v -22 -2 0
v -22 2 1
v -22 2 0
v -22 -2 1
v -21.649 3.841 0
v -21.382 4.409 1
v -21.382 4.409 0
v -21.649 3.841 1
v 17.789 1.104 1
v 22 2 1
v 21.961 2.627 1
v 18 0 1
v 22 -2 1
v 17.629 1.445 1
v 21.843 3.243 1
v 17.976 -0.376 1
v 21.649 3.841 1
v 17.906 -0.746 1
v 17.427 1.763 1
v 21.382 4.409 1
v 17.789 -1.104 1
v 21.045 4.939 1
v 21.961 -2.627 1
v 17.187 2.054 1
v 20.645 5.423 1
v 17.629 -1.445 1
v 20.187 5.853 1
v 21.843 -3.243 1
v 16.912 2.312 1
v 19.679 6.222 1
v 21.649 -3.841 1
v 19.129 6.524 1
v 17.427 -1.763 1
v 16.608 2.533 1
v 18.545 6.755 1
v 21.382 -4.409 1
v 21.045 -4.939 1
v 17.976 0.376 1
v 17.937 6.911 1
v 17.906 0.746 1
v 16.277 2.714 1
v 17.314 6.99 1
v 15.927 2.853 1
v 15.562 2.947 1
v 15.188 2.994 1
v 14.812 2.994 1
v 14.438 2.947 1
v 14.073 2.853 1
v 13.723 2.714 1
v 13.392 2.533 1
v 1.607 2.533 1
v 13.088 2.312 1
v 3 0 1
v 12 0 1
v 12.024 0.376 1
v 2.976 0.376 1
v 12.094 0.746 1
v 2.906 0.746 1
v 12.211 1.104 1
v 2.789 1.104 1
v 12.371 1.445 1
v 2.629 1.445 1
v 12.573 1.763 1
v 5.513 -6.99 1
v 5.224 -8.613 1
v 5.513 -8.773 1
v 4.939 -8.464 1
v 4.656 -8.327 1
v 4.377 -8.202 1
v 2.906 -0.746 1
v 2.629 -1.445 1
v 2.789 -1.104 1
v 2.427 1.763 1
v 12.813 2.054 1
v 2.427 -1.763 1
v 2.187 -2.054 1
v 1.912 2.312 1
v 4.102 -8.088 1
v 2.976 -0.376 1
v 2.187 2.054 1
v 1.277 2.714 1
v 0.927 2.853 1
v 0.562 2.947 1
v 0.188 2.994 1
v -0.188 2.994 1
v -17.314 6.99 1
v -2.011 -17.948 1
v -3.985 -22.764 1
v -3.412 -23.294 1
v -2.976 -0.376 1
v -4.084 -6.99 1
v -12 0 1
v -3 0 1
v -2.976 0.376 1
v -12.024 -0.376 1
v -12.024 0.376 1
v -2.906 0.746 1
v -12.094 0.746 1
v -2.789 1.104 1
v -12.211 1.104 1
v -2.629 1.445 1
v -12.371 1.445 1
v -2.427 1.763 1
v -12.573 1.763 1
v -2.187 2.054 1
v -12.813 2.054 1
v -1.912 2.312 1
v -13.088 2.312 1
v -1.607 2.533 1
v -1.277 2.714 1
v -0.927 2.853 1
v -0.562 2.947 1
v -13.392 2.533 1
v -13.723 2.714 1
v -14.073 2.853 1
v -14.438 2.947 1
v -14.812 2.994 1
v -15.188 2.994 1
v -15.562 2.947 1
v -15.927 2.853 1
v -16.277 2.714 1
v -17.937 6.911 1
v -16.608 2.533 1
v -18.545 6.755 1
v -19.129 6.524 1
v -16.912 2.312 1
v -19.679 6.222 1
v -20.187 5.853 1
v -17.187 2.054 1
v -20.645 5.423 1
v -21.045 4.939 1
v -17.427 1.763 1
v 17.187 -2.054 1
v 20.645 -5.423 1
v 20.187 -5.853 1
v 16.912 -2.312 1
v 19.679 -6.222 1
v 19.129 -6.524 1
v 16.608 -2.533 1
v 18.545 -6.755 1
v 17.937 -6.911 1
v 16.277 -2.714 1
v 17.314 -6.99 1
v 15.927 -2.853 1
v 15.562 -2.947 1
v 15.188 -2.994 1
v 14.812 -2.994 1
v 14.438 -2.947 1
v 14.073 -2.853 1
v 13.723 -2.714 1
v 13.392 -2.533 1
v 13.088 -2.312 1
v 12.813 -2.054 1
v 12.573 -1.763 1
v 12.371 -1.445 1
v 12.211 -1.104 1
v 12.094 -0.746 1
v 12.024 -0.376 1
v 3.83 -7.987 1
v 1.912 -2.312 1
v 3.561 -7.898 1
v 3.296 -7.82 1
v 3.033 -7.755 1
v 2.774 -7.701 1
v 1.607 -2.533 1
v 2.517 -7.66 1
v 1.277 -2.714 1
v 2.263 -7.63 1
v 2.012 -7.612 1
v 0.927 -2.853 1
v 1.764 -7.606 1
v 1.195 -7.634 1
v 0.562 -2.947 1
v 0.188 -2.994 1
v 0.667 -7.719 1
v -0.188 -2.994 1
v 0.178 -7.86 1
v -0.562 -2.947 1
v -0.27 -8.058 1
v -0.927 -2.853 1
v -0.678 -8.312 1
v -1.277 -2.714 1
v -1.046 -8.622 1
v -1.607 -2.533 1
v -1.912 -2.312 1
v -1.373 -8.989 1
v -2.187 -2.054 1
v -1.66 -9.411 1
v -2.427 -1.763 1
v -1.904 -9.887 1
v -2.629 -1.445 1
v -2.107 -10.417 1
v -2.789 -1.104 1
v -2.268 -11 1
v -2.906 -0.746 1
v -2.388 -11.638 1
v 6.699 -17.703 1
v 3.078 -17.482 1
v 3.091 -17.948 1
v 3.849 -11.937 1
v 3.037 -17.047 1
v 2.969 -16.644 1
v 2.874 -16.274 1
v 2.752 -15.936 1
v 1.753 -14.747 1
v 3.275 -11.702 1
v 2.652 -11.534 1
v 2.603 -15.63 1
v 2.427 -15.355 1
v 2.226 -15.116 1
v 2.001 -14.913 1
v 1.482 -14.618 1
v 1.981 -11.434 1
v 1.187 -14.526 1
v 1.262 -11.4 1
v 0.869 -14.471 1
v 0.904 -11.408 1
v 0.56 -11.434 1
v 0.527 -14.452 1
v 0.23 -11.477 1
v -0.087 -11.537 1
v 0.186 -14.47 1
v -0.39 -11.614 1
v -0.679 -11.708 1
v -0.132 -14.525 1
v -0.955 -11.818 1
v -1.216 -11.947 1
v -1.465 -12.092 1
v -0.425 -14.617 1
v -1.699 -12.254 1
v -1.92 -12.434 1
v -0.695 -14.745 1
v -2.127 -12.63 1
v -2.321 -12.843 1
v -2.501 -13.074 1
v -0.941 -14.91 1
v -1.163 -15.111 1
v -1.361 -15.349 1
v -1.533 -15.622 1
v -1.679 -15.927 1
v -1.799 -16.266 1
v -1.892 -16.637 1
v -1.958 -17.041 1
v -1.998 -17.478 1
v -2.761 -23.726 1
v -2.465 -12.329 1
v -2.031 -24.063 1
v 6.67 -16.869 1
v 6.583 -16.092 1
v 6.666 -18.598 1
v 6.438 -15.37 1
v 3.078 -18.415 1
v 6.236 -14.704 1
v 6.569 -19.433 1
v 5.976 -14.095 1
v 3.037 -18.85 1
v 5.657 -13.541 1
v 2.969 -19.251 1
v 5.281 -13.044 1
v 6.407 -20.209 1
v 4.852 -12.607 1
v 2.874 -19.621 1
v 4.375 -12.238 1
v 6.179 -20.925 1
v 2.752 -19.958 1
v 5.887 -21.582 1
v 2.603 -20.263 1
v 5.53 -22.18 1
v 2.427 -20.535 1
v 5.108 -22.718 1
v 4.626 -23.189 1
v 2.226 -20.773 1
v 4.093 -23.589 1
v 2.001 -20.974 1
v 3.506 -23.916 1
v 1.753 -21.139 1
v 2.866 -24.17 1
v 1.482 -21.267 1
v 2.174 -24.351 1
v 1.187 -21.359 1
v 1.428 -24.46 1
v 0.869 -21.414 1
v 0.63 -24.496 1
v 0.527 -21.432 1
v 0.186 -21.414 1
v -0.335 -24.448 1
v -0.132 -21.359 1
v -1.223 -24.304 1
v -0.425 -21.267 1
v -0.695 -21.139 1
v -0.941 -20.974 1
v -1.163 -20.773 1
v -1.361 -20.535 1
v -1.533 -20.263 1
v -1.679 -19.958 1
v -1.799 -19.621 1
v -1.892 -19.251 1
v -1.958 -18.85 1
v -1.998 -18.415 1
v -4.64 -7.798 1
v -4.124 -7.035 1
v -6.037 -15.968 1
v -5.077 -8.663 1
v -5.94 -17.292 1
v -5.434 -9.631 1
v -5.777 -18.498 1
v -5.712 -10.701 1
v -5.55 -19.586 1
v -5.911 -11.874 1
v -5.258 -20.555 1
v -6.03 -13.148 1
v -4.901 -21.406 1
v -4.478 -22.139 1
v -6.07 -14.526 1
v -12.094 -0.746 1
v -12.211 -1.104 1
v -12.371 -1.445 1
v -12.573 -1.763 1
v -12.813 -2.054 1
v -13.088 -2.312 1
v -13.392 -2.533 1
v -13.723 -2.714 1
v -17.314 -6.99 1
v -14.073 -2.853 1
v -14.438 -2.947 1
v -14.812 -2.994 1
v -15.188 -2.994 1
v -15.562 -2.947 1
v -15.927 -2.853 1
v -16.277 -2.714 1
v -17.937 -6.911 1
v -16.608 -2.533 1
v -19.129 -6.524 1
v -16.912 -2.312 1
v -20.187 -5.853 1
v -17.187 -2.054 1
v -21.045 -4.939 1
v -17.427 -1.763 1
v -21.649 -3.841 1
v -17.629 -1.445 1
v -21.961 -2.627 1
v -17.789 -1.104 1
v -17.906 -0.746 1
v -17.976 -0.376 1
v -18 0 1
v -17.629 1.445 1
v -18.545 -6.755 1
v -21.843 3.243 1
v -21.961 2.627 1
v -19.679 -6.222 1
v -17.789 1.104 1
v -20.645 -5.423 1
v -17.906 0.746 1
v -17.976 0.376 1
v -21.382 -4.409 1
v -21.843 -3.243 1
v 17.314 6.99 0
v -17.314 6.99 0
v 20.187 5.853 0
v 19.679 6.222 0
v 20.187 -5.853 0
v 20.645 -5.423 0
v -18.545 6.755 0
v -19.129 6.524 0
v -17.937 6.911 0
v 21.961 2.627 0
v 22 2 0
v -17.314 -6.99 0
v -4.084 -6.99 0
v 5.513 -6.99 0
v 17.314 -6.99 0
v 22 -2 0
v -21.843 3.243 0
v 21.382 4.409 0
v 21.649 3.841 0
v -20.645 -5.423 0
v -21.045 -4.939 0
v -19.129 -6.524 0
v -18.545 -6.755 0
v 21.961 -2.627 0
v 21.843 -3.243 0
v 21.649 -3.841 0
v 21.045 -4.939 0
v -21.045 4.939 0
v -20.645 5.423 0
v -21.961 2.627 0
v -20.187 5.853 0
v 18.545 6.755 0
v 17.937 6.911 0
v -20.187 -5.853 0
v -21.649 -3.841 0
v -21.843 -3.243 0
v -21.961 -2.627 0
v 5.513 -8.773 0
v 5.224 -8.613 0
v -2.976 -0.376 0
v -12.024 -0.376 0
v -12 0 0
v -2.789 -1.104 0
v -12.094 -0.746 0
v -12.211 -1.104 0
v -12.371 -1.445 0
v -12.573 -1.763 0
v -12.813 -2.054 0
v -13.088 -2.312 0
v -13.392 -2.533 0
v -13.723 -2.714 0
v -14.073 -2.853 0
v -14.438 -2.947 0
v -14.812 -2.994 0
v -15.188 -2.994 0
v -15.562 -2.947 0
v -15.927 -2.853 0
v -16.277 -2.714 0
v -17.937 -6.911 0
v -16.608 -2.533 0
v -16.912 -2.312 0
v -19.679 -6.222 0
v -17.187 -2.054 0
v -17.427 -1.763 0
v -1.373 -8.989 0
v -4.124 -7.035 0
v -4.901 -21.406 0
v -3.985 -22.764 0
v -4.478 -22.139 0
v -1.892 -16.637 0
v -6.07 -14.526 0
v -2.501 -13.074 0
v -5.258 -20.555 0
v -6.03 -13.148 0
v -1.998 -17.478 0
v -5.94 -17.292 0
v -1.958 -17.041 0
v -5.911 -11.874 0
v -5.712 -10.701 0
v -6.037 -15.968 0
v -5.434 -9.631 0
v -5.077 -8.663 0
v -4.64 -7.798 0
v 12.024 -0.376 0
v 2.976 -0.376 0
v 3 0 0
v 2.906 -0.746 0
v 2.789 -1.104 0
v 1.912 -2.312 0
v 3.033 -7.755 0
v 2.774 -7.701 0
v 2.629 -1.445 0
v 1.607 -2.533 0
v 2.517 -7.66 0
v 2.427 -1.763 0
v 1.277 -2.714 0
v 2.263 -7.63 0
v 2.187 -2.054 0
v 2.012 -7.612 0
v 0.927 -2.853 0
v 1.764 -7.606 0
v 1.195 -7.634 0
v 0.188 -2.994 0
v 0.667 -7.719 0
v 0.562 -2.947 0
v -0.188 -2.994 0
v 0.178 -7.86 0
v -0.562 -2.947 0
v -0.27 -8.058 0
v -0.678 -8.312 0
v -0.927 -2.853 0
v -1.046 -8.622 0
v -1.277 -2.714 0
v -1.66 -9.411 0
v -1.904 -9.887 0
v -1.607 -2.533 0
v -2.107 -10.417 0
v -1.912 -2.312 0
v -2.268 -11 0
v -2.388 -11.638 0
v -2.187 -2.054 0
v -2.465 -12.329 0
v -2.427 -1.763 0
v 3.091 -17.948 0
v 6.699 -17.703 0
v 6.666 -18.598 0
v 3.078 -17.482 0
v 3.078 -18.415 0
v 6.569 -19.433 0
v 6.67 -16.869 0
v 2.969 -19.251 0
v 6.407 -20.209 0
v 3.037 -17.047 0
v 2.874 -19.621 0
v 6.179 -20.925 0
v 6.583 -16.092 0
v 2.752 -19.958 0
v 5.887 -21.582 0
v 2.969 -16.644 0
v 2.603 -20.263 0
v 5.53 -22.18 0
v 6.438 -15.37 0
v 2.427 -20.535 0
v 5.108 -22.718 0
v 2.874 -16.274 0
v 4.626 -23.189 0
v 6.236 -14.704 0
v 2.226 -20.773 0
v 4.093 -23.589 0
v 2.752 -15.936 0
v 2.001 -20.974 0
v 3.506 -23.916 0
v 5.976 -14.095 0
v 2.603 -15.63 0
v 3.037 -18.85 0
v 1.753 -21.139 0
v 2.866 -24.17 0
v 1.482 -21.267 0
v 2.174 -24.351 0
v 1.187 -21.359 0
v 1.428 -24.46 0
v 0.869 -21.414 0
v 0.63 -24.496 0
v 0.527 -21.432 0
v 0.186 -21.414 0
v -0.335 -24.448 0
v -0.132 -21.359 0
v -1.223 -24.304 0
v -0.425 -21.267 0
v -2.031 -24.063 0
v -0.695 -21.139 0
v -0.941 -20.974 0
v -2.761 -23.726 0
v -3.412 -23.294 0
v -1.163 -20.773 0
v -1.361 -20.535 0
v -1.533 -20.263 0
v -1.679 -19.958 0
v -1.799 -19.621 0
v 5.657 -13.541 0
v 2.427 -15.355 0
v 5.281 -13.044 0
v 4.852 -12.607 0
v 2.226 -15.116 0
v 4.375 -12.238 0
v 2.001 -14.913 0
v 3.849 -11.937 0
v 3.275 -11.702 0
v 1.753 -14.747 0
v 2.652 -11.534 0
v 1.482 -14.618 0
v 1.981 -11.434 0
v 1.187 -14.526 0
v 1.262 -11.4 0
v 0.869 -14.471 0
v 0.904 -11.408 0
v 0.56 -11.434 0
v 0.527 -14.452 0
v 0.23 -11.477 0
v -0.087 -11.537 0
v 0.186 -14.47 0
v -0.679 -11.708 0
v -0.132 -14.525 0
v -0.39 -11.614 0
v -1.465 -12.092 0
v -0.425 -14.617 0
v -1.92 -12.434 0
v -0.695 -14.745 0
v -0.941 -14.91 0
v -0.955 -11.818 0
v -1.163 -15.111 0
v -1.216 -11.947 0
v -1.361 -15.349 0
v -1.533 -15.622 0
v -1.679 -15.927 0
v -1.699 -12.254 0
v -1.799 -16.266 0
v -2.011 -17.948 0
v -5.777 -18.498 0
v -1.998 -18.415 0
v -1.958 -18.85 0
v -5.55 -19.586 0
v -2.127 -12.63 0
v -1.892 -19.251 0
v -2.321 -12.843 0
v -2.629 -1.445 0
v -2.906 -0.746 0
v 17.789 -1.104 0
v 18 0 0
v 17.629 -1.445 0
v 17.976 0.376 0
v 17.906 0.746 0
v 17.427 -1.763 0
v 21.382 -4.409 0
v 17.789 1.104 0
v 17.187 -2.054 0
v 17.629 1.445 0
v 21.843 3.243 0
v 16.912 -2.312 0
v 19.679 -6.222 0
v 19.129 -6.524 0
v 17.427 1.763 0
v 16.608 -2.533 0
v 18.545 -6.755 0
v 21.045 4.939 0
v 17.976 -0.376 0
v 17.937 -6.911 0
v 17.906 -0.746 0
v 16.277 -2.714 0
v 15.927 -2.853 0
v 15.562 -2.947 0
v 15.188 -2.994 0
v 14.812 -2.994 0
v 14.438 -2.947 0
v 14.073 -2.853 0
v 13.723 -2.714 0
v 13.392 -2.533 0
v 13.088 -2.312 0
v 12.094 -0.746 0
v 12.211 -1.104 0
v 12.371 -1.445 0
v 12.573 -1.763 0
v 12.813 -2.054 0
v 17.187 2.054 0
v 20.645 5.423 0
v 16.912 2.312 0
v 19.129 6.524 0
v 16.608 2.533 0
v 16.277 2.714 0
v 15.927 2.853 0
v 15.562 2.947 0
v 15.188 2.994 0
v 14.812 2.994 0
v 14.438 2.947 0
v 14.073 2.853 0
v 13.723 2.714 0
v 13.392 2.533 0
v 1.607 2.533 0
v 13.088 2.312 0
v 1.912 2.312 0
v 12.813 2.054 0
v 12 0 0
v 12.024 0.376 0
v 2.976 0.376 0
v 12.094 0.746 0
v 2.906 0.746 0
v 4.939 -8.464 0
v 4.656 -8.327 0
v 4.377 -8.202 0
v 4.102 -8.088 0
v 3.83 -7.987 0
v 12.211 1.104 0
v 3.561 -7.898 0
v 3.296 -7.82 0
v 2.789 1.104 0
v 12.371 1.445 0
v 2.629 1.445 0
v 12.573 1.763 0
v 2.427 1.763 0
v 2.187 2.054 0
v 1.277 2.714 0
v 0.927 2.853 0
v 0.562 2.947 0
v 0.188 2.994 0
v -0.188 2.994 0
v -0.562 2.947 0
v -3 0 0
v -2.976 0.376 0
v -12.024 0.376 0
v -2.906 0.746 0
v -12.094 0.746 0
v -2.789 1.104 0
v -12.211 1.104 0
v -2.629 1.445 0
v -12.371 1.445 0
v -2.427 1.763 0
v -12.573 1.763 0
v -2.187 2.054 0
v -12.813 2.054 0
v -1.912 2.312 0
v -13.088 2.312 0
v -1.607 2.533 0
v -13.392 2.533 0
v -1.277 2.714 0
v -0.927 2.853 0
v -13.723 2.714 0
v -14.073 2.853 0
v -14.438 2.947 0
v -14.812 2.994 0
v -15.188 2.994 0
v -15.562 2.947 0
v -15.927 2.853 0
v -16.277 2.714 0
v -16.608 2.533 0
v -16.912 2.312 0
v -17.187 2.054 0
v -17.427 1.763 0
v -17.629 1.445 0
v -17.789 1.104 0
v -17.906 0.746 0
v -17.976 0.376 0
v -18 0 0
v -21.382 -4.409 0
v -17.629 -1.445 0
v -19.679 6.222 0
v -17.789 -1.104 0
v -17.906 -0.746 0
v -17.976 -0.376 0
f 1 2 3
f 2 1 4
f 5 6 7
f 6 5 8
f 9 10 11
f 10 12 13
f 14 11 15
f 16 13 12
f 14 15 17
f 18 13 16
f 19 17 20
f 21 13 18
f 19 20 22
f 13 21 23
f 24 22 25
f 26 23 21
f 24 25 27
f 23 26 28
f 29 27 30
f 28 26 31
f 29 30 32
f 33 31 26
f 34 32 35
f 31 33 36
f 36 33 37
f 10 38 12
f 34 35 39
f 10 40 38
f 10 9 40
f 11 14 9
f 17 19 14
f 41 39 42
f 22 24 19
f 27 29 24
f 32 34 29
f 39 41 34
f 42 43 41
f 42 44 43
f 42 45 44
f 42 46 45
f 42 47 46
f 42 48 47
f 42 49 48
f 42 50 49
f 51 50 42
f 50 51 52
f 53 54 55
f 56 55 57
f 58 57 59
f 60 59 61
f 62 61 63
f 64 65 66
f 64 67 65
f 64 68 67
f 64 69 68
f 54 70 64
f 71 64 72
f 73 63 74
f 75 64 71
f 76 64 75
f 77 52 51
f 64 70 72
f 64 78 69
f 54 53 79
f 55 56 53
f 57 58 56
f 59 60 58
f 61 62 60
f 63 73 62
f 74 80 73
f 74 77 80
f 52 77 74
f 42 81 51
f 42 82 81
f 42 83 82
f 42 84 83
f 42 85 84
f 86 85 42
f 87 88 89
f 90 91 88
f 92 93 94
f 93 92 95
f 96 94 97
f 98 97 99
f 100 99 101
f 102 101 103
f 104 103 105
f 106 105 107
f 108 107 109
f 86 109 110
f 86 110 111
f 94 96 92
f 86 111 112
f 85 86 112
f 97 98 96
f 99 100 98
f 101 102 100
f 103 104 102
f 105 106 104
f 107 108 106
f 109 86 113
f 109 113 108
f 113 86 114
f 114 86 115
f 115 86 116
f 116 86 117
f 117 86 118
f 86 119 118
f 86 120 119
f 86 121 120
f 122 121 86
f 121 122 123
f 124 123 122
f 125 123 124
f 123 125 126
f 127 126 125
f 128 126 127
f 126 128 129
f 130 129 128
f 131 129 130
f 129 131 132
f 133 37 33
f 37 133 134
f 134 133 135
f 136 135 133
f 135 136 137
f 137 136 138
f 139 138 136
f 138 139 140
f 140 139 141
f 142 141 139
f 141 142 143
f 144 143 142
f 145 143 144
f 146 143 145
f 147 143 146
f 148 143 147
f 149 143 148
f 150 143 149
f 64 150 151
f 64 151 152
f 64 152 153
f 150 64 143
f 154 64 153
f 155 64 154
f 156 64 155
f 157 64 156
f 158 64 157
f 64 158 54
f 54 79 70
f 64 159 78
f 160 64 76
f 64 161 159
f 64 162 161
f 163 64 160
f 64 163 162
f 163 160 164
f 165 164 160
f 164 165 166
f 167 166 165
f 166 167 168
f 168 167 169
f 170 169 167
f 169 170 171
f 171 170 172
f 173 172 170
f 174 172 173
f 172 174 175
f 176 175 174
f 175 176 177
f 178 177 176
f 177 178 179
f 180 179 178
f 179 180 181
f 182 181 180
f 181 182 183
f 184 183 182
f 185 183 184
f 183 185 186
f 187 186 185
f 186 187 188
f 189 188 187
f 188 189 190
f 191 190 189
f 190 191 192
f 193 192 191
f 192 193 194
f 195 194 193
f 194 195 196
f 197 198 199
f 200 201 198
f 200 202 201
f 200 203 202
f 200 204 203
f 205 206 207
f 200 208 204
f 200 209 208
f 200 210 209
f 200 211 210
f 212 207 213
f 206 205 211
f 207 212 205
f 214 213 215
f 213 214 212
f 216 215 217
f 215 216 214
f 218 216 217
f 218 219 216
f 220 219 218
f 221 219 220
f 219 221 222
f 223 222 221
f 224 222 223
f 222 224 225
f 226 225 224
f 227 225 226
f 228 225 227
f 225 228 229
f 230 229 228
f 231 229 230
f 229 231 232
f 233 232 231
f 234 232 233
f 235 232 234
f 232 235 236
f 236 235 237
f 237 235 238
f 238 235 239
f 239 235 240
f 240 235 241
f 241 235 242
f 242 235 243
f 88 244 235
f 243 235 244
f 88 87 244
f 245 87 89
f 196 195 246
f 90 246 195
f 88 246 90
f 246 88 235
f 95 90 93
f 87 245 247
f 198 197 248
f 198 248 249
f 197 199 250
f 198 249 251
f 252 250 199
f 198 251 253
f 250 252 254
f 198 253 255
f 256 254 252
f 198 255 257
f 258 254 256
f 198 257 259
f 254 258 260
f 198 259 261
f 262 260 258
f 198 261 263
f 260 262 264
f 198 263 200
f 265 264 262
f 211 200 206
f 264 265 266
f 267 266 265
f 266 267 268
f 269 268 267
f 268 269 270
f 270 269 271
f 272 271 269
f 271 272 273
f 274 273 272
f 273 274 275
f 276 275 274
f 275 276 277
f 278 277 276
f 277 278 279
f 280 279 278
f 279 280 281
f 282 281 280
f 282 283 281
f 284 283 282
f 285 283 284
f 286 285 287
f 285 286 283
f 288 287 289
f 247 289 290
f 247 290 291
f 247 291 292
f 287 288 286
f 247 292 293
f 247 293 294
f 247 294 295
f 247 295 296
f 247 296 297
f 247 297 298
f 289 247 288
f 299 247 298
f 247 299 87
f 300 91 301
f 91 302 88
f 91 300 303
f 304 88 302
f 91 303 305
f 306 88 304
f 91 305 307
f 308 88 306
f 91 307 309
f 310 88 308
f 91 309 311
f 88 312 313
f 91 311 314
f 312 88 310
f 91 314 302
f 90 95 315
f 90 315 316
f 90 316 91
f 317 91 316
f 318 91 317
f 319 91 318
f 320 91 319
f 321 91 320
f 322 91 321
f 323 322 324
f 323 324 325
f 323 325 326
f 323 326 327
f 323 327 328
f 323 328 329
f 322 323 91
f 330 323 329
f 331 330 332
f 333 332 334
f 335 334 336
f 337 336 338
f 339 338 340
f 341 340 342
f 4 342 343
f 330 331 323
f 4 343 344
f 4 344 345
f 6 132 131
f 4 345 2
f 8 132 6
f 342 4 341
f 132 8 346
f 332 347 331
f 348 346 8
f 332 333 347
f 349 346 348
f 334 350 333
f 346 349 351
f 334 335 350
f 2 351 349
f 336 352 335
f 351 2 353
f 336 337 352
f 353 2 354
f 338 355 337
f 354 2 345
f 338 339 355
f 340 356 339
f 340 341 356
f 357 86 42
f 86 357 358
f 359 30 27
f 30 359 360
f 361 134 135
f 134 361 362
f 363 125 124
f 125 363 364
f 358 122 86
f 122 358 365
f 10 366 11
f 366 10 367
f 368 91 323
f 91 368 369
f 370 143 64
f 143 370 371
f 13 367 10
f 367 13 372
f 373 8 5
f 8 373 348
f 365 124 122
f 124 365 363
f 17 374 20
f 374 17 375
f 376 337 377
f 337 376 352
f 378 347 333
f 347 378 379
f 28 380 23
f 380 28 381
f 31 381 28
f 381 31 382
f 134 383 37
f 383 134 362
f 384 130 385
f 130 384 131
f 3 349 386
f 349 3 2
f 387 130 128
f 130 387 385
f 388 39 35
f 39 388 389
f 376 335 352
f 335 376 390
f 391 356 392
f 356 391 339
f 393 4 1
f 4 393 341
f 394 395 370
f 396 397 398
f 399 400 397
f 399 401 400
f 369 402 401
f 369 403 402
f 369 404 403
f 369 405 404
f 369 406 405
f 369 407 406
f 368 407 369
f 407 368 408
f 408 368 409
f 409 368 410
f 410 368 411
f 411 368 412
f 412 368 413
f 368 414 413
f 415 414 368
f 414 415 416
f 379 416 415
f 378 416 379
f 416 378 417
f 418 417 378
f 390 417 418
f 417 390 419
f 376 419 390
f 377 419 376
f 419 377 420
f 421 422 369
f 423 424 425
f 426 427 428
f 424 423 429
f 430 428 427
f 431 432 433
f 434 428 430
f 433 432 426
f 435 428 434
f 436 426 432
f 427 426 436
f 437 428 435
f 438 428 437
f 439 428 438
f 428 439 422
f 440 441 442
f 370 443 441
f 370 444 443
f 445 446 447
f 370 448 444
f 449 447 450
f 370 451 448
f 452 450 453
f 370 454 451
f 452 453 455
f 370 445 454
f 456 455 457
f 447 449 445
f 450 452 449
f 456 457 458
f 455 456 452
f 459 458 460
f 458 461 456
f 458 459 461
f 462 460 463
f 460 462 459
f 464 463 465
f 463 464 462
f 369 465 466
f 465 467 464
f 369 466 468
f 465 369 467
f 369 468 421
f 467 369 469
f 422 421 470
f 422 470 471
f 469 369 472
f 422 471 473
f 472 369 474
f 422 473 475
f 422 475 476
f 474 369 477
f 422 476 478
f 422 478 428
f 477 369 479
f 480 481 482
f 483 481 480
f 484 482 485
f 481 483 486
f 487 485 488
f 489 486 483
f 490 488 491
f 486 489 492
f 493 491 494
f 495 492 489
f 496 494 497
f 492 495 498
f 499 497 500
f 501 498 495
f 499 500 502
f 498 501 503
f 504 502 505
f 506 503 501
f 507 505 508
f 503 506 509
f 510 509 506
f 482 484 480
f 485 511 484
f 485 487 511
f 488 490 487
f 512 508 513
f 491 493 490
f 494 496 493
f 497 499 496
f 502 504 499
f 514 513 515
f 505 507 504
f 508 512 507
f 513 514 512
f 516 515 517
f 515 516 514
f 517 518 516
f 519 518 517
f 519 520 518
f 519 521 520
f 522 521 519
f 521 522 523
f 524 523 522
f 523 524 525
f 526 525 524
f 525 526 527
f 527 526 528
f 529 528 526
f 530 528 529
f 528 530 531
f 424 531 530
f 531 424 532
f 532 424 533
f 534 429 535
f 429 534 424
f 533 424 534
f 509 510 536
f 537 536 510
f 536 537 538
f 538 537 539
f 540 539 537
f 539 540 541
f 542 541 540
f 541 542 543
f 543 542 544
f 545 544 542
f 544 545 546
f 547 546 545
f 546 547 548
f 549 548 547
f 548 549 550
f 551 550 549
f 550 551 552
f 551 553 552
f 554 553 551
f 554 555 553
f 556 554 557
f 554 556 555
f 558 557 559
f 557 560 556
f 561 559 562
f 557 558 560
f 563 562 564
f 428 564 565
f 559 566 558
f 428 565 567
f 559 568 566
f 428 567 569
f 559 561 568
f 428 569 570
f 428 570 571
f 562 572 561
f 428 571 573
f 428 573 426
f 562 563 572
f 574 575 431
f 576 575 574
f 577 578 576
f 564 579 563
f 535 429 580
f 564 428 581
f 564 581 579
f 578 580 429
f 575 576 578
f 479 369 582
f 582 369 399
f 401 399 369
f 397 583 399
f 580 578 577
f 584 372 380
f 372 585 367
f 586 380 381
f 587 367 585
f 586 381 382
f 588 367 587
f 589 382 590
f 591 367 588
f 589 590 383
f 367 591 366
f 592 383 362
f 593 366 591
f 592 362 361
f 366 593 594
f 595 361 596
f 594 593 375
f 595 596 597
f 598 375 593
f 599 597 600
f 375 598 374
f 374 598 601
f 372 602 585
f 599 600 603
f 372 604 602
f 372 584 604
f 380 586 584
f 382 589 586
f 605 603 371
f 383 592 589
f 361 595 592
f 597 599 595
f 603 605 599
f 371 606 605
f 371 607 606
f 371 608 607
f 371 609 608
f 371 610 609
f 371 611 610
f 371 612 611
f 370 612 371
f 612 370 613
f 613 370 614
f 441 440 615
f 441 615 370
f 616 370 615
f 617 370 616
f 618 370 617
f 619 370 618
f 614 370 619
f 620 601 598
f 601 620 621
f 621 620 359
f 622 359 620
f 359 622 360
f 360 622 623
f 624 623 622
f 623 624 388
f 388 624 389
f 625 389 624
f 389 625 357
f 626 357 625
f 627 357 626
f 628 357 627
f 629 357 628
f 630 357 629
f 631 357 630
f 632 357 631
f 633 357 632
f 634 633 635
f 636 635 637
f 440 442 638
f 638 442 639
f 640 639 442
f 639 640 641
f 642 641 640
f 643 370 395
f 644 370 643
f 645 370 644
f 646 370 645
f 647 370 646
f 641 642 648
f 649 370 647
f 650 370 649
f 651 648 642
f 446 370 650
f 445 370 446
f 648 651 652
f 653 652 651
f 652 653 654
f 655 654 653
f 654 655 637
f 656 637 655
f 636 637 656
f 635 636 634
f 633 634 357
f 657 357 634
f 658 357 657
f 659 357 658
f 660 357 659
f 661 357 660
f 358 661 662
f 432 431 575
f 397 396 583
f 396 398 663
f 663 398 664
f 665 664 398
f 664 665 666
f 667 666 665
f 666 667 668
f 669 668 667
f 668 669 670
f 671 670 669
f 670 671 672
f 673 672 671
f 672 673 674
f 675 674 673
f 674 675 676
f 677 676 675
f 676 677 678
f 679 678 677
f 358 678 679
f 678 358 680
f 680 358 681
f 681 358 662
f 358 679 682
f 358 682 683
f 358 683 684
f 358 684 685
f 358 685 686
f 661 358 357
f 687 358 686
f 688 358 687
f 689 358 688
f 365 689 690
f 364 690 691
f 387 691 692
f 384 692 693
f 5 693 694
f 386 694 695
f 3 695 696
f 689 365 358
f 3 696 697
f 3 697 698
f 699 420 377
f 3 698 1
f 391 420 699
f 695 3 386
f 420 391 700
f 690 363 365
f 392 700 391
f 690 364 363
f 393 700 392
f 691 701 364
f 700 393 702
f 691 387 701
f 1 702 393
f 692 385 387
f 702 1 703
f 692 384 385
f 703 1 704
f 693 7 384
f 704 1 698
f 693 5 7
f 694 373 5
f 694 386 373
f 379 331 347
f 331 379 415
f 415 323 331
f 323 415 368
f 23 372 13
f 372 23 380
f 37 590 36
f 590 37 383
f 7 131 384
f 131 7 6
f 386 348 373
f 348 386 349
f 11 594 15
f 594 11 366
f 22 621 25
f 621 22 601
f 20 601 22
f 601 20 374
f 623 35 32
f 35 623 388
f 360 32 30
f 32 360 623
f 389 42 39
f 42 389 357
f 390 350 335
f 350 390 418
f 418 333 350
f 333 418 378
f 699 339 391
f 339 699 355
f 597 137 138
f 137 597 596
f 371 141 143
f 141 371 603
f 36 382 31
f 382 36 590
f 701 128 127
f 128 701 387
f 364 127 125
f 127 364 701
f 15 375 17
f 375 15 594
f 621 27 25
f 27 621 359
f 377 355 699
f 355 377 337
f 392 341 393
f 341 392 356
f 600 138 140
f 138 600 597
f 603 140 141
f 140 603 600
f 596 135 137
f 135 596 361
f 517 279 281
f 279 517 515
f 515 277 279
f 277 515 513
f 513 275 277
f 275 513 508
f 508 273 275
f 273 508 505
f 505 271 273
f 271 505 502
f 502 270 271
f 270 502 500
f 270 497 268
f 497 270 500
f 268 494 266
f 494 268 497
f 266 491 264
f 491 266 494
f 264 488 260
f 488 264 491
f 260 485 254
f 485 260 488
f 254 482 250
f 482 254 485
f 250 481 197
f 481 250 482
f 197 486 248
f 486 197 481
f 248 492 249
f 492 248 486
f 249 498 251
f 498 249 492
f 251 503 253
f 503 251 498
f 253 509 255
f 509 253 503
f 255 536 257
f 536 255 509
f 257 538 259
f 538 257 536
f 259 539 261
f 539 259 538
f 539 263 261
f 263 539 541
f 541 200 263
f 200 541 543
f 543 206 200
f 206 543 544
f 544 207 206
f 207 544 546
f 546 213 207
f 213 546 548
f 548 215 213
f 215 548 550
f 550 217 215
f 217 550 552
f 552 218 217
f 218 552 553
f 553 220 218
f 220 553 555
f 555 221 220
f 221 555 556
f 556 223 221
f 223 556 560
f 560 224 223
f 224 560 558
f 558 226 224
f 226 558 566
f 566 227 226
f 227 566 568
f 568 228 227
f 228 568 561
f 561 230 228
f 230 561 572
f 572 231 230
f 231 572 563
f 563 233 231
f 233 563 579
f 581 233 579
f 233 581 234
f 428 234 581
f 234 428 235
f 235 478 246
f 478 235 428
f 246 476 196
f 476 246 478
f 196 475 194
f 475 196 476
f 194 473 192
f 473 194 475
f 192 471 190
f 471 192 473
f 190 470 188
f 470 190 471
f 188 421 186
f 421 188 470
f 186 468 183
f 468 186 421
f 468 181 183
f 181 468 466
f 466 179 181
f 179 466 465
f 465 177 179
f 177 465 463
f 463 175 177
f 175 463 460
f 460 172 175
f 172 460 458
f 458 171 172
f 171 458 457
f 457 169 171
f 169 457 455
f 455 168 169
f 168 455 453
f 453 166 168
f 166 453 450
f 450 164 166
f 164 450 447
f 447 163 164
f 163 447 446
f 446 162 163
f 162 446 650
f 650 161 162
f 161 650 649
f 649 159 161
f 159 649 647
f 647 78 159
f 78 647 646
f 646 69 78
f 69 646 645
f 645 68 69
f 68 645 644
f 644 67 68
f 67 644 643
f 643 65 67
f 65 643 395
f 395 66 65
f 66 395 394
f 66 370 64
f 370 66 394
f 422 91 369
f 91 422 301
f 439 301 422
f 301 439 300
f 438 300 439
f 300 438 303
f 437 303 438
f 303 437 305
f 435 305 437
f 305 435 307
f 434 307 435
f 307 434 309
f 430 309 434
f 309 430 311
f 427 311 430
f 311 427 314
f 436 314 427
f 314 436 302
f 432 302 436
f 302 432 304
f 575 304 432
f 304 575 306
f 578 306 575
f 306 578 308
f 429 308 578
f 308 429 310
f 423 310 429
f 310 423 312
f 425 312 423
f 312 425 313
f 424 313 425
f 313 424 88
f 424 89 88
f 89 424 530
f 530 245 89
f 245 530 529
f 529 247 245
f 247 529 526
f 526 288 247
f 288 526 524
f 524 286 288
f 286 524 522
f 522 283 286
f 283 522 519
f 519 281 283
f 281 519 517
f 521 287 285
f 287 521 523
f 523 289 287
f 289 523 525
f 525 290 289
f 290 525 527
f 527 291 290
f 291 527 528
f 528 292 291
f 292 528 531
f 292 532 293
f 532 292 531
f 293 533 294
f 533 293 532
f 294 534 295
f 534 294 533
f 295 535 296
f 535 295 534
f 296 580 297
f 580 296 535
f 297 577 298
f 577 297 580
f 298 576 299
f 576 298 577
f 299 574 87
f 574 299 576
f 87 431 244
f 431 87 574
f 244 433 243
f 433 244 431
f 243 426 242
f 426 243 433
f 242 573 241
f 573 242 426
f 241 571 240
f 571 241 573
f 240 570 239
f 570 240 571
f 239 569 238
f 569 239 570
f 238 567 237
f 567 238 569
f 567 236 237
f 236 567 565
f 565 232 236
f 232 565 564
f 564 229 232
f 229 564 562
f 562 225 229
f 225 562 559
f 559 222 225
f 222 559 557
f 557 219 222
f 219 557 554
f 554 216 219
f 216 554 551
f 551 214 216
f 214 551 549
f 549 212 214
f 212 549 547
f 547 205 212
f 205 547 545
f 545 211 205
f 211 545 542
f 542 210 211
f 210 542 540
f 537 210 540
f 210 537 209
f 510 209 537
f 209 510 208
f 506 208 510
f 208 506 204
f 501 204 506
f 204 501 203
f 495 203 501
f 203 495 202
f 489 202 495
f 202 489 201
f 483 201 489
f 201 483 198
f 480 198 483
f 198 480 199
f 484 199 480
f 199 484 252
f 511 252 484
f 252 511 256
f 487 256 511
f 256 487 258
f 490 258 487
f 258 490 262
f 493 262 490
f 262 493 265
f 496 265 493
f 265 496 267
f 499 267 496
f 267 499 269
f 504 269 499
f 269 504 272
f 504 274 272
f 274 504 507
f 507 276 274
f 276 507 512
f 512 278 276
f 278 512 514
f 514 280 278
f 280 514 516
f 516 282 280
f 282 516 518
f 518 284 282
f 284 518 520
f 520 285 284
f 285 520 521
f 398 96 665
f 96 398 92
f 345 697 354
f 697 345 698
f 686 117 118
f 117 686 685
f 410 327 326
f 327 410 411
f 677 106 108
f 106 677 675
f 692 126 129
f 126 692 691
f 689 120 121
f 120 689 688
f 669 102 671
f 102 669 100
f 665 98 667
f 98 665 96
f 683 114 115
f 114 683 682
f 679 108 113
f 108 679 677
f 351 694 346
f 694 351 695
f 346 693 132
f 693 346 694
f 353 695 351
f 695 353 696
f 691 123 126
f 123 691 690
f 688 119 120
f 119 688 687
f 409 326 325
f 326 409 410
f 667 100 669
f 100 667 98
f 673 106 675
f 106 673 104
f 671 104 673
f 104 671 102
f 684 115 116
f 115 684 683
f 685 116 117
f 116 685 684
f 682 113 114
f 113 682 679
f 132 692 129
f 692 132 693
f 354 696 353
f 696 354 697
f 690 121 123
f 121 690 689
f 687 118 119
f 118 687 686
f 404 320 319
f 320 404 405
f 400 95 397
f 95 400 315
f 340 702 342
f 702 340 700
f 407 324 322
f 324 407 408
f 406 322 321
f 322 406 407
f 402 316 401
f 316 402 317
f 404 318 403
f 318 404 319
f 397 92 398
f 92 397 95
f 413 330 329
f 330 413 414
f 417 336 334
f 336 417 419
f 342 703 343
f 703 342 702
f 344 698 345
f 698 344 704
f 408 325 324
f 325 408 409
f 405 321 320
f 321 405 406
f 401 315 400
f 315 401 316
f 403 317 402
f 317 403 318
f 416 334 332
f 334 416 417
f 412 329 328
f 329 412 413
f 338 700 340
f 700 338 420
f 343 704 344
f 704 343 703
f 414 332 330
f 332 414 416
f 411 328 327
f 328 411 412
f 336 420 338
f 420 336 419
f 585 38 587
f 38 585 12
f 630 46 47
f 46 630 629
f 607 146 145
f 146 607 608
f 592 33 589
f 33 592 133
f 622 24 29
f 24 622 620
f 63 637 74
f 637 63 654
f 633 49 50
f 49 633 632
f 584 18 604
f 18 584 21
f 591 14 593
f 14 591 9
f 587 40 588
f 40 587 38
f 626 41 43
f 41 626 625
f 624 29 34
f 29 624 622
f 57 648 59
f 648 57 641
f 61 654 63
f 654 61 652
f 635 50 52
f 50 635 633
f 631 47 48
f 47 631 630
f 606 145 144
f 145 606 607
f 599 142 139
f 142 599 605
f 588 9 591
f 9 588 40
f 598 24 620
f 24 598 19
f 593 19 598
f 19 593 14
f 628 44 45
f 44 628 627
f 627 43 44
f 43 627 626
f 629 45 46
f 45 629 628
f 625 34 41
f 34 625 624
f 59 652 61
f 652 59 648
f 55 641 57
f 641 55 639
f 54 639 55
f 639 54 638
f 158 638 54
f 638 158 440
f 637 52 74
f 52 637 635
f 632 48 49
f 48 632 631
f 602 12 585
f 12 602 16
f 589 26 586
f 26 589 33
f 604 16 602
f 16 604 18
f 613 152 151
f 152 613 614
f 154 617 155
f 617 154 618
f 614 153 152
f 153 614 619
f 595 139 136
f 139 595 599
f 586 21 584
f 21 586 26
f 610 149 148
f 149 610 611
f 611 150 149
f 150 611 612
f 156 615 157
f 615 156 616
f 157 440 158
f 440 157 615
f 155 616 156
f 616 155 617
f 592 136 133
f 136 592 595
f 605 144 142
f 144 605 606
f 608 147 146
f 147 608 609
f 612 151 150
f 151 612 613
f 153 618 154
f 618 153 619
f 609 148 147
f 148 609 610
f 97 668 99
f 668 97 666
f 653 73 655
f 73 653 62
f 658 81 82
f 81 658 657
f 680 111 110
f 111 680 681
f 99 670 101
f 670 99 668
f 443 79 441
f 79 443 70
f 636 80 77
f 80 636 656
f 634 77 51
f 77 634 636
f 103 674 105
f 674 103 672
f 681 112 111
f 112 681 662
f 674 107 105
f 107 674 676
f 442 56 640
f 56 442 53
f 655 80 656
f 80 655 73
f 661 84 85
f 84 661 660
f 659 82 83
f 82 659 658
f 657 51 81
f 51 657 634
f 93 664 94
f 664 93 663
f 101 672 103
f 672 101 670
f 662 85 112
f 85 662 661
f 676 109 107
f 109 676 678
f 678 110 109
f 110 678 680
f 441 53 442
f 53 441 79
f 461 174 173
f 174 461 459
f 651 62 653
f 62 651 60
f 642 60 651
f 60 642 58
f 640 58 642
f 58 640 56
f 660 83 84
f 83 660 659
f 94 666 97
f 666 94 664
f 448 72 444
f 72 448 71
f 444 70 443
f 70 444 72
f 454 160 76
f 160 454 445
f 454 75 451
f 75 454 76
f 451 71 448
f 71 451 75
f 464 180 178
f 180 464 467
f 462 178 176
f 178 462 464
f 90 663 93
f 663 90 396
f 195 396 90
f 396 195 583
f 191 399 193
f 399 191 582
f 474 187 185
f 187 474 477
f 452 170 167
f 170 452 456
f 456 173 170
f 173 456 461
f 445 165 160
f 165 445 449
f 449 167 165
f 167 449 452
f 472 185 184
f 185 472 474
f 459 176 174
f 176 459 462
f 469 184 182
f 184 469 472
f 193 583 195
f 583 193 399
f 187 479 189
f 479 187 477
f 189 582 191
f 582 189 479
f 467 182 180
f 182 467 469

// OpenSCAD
$fn = 50;


difference() {
	union() {
		translate(v = [0, 0, 0]) {
			rotate(a = [0, 0, 0]) {
				hull() {
					translate(v = [-17.0000000000, 2.0000000000, 0]) {
						rotate(a = [0, 0, 0]) {
							translate(v = [0, 0, 0]) {
								rotate(a = [0, 0, 0]) {
									cylinder(h = 1, r = 5);
								}
							}
						}
					}
					translate(v = [17.0000000000, 2.0000000000, 0]) {
						rotate(a = [0, 0, 0]) {
							translate(v = [0, 0, 0]) {
								rotate(a = [0, 0, 0]) {
									cylinder(h = 1, r = 5);
								}
							}
						}
					}
					translate(v = [-17.0000000000, -2.0000000000, 0]) {
						rotate(a = [0, 0, 0]) {
							translate(v = [0, 0, 0]) {
								rotate(a = [0, 0, 0]) {
									cylinder(h = 1, r = 5);
								}
							}
						}
					}
					translate(v = [17.0000000000, -2.0000000000, 0]) {
						rotate(a = [0, 0, 0]) {
							translate(v = [0, 0, 0]) {
								rotate(a = [0, 0, 0]) {
									cylinder(h = 1, r = 5);
								}
							}
						}
					}
				}
			}
		}
		translate(v = [0, -5, 0]) {
			rotate(a = [0, 0, 0]) {
				linear_extrude(height = 1) {
					text(font = "DejaVu Sans Mono:style=Bold", halign = "center", size = 19.0000000000, text = "6", valign = "top");
				}
			}
		}
	}
	union() {
		translate(v = [-15.0000000000, 0.0000000000, -125.0000000000]) {
			rotate(a = [0, 0, 0]) {
				cylinder(h = 250, r = 3.0000000000);
			}
		}
		translate(v = [15.0000000000, 0.0000000000, -125.0000000000]) {
			rotate(a = [0, 0, 0]) {
				cylinder(h = 250, r = 3.0000000000);
			}
		}
		translate(v = [15.0000000000, 0.0000000000, -125.0000000000]) {
			rotate(a = [0, 0, 0]) {
				cylinder(h = 250, r = 3.0000000000);
			}
		}
		translate(v = [0, 0, -125.0000000000]) {
			rotate(a = [0, 0, 0]) {
				cylinder(h = 250, r = 3.0000000000);
			}
		}
	}
}
